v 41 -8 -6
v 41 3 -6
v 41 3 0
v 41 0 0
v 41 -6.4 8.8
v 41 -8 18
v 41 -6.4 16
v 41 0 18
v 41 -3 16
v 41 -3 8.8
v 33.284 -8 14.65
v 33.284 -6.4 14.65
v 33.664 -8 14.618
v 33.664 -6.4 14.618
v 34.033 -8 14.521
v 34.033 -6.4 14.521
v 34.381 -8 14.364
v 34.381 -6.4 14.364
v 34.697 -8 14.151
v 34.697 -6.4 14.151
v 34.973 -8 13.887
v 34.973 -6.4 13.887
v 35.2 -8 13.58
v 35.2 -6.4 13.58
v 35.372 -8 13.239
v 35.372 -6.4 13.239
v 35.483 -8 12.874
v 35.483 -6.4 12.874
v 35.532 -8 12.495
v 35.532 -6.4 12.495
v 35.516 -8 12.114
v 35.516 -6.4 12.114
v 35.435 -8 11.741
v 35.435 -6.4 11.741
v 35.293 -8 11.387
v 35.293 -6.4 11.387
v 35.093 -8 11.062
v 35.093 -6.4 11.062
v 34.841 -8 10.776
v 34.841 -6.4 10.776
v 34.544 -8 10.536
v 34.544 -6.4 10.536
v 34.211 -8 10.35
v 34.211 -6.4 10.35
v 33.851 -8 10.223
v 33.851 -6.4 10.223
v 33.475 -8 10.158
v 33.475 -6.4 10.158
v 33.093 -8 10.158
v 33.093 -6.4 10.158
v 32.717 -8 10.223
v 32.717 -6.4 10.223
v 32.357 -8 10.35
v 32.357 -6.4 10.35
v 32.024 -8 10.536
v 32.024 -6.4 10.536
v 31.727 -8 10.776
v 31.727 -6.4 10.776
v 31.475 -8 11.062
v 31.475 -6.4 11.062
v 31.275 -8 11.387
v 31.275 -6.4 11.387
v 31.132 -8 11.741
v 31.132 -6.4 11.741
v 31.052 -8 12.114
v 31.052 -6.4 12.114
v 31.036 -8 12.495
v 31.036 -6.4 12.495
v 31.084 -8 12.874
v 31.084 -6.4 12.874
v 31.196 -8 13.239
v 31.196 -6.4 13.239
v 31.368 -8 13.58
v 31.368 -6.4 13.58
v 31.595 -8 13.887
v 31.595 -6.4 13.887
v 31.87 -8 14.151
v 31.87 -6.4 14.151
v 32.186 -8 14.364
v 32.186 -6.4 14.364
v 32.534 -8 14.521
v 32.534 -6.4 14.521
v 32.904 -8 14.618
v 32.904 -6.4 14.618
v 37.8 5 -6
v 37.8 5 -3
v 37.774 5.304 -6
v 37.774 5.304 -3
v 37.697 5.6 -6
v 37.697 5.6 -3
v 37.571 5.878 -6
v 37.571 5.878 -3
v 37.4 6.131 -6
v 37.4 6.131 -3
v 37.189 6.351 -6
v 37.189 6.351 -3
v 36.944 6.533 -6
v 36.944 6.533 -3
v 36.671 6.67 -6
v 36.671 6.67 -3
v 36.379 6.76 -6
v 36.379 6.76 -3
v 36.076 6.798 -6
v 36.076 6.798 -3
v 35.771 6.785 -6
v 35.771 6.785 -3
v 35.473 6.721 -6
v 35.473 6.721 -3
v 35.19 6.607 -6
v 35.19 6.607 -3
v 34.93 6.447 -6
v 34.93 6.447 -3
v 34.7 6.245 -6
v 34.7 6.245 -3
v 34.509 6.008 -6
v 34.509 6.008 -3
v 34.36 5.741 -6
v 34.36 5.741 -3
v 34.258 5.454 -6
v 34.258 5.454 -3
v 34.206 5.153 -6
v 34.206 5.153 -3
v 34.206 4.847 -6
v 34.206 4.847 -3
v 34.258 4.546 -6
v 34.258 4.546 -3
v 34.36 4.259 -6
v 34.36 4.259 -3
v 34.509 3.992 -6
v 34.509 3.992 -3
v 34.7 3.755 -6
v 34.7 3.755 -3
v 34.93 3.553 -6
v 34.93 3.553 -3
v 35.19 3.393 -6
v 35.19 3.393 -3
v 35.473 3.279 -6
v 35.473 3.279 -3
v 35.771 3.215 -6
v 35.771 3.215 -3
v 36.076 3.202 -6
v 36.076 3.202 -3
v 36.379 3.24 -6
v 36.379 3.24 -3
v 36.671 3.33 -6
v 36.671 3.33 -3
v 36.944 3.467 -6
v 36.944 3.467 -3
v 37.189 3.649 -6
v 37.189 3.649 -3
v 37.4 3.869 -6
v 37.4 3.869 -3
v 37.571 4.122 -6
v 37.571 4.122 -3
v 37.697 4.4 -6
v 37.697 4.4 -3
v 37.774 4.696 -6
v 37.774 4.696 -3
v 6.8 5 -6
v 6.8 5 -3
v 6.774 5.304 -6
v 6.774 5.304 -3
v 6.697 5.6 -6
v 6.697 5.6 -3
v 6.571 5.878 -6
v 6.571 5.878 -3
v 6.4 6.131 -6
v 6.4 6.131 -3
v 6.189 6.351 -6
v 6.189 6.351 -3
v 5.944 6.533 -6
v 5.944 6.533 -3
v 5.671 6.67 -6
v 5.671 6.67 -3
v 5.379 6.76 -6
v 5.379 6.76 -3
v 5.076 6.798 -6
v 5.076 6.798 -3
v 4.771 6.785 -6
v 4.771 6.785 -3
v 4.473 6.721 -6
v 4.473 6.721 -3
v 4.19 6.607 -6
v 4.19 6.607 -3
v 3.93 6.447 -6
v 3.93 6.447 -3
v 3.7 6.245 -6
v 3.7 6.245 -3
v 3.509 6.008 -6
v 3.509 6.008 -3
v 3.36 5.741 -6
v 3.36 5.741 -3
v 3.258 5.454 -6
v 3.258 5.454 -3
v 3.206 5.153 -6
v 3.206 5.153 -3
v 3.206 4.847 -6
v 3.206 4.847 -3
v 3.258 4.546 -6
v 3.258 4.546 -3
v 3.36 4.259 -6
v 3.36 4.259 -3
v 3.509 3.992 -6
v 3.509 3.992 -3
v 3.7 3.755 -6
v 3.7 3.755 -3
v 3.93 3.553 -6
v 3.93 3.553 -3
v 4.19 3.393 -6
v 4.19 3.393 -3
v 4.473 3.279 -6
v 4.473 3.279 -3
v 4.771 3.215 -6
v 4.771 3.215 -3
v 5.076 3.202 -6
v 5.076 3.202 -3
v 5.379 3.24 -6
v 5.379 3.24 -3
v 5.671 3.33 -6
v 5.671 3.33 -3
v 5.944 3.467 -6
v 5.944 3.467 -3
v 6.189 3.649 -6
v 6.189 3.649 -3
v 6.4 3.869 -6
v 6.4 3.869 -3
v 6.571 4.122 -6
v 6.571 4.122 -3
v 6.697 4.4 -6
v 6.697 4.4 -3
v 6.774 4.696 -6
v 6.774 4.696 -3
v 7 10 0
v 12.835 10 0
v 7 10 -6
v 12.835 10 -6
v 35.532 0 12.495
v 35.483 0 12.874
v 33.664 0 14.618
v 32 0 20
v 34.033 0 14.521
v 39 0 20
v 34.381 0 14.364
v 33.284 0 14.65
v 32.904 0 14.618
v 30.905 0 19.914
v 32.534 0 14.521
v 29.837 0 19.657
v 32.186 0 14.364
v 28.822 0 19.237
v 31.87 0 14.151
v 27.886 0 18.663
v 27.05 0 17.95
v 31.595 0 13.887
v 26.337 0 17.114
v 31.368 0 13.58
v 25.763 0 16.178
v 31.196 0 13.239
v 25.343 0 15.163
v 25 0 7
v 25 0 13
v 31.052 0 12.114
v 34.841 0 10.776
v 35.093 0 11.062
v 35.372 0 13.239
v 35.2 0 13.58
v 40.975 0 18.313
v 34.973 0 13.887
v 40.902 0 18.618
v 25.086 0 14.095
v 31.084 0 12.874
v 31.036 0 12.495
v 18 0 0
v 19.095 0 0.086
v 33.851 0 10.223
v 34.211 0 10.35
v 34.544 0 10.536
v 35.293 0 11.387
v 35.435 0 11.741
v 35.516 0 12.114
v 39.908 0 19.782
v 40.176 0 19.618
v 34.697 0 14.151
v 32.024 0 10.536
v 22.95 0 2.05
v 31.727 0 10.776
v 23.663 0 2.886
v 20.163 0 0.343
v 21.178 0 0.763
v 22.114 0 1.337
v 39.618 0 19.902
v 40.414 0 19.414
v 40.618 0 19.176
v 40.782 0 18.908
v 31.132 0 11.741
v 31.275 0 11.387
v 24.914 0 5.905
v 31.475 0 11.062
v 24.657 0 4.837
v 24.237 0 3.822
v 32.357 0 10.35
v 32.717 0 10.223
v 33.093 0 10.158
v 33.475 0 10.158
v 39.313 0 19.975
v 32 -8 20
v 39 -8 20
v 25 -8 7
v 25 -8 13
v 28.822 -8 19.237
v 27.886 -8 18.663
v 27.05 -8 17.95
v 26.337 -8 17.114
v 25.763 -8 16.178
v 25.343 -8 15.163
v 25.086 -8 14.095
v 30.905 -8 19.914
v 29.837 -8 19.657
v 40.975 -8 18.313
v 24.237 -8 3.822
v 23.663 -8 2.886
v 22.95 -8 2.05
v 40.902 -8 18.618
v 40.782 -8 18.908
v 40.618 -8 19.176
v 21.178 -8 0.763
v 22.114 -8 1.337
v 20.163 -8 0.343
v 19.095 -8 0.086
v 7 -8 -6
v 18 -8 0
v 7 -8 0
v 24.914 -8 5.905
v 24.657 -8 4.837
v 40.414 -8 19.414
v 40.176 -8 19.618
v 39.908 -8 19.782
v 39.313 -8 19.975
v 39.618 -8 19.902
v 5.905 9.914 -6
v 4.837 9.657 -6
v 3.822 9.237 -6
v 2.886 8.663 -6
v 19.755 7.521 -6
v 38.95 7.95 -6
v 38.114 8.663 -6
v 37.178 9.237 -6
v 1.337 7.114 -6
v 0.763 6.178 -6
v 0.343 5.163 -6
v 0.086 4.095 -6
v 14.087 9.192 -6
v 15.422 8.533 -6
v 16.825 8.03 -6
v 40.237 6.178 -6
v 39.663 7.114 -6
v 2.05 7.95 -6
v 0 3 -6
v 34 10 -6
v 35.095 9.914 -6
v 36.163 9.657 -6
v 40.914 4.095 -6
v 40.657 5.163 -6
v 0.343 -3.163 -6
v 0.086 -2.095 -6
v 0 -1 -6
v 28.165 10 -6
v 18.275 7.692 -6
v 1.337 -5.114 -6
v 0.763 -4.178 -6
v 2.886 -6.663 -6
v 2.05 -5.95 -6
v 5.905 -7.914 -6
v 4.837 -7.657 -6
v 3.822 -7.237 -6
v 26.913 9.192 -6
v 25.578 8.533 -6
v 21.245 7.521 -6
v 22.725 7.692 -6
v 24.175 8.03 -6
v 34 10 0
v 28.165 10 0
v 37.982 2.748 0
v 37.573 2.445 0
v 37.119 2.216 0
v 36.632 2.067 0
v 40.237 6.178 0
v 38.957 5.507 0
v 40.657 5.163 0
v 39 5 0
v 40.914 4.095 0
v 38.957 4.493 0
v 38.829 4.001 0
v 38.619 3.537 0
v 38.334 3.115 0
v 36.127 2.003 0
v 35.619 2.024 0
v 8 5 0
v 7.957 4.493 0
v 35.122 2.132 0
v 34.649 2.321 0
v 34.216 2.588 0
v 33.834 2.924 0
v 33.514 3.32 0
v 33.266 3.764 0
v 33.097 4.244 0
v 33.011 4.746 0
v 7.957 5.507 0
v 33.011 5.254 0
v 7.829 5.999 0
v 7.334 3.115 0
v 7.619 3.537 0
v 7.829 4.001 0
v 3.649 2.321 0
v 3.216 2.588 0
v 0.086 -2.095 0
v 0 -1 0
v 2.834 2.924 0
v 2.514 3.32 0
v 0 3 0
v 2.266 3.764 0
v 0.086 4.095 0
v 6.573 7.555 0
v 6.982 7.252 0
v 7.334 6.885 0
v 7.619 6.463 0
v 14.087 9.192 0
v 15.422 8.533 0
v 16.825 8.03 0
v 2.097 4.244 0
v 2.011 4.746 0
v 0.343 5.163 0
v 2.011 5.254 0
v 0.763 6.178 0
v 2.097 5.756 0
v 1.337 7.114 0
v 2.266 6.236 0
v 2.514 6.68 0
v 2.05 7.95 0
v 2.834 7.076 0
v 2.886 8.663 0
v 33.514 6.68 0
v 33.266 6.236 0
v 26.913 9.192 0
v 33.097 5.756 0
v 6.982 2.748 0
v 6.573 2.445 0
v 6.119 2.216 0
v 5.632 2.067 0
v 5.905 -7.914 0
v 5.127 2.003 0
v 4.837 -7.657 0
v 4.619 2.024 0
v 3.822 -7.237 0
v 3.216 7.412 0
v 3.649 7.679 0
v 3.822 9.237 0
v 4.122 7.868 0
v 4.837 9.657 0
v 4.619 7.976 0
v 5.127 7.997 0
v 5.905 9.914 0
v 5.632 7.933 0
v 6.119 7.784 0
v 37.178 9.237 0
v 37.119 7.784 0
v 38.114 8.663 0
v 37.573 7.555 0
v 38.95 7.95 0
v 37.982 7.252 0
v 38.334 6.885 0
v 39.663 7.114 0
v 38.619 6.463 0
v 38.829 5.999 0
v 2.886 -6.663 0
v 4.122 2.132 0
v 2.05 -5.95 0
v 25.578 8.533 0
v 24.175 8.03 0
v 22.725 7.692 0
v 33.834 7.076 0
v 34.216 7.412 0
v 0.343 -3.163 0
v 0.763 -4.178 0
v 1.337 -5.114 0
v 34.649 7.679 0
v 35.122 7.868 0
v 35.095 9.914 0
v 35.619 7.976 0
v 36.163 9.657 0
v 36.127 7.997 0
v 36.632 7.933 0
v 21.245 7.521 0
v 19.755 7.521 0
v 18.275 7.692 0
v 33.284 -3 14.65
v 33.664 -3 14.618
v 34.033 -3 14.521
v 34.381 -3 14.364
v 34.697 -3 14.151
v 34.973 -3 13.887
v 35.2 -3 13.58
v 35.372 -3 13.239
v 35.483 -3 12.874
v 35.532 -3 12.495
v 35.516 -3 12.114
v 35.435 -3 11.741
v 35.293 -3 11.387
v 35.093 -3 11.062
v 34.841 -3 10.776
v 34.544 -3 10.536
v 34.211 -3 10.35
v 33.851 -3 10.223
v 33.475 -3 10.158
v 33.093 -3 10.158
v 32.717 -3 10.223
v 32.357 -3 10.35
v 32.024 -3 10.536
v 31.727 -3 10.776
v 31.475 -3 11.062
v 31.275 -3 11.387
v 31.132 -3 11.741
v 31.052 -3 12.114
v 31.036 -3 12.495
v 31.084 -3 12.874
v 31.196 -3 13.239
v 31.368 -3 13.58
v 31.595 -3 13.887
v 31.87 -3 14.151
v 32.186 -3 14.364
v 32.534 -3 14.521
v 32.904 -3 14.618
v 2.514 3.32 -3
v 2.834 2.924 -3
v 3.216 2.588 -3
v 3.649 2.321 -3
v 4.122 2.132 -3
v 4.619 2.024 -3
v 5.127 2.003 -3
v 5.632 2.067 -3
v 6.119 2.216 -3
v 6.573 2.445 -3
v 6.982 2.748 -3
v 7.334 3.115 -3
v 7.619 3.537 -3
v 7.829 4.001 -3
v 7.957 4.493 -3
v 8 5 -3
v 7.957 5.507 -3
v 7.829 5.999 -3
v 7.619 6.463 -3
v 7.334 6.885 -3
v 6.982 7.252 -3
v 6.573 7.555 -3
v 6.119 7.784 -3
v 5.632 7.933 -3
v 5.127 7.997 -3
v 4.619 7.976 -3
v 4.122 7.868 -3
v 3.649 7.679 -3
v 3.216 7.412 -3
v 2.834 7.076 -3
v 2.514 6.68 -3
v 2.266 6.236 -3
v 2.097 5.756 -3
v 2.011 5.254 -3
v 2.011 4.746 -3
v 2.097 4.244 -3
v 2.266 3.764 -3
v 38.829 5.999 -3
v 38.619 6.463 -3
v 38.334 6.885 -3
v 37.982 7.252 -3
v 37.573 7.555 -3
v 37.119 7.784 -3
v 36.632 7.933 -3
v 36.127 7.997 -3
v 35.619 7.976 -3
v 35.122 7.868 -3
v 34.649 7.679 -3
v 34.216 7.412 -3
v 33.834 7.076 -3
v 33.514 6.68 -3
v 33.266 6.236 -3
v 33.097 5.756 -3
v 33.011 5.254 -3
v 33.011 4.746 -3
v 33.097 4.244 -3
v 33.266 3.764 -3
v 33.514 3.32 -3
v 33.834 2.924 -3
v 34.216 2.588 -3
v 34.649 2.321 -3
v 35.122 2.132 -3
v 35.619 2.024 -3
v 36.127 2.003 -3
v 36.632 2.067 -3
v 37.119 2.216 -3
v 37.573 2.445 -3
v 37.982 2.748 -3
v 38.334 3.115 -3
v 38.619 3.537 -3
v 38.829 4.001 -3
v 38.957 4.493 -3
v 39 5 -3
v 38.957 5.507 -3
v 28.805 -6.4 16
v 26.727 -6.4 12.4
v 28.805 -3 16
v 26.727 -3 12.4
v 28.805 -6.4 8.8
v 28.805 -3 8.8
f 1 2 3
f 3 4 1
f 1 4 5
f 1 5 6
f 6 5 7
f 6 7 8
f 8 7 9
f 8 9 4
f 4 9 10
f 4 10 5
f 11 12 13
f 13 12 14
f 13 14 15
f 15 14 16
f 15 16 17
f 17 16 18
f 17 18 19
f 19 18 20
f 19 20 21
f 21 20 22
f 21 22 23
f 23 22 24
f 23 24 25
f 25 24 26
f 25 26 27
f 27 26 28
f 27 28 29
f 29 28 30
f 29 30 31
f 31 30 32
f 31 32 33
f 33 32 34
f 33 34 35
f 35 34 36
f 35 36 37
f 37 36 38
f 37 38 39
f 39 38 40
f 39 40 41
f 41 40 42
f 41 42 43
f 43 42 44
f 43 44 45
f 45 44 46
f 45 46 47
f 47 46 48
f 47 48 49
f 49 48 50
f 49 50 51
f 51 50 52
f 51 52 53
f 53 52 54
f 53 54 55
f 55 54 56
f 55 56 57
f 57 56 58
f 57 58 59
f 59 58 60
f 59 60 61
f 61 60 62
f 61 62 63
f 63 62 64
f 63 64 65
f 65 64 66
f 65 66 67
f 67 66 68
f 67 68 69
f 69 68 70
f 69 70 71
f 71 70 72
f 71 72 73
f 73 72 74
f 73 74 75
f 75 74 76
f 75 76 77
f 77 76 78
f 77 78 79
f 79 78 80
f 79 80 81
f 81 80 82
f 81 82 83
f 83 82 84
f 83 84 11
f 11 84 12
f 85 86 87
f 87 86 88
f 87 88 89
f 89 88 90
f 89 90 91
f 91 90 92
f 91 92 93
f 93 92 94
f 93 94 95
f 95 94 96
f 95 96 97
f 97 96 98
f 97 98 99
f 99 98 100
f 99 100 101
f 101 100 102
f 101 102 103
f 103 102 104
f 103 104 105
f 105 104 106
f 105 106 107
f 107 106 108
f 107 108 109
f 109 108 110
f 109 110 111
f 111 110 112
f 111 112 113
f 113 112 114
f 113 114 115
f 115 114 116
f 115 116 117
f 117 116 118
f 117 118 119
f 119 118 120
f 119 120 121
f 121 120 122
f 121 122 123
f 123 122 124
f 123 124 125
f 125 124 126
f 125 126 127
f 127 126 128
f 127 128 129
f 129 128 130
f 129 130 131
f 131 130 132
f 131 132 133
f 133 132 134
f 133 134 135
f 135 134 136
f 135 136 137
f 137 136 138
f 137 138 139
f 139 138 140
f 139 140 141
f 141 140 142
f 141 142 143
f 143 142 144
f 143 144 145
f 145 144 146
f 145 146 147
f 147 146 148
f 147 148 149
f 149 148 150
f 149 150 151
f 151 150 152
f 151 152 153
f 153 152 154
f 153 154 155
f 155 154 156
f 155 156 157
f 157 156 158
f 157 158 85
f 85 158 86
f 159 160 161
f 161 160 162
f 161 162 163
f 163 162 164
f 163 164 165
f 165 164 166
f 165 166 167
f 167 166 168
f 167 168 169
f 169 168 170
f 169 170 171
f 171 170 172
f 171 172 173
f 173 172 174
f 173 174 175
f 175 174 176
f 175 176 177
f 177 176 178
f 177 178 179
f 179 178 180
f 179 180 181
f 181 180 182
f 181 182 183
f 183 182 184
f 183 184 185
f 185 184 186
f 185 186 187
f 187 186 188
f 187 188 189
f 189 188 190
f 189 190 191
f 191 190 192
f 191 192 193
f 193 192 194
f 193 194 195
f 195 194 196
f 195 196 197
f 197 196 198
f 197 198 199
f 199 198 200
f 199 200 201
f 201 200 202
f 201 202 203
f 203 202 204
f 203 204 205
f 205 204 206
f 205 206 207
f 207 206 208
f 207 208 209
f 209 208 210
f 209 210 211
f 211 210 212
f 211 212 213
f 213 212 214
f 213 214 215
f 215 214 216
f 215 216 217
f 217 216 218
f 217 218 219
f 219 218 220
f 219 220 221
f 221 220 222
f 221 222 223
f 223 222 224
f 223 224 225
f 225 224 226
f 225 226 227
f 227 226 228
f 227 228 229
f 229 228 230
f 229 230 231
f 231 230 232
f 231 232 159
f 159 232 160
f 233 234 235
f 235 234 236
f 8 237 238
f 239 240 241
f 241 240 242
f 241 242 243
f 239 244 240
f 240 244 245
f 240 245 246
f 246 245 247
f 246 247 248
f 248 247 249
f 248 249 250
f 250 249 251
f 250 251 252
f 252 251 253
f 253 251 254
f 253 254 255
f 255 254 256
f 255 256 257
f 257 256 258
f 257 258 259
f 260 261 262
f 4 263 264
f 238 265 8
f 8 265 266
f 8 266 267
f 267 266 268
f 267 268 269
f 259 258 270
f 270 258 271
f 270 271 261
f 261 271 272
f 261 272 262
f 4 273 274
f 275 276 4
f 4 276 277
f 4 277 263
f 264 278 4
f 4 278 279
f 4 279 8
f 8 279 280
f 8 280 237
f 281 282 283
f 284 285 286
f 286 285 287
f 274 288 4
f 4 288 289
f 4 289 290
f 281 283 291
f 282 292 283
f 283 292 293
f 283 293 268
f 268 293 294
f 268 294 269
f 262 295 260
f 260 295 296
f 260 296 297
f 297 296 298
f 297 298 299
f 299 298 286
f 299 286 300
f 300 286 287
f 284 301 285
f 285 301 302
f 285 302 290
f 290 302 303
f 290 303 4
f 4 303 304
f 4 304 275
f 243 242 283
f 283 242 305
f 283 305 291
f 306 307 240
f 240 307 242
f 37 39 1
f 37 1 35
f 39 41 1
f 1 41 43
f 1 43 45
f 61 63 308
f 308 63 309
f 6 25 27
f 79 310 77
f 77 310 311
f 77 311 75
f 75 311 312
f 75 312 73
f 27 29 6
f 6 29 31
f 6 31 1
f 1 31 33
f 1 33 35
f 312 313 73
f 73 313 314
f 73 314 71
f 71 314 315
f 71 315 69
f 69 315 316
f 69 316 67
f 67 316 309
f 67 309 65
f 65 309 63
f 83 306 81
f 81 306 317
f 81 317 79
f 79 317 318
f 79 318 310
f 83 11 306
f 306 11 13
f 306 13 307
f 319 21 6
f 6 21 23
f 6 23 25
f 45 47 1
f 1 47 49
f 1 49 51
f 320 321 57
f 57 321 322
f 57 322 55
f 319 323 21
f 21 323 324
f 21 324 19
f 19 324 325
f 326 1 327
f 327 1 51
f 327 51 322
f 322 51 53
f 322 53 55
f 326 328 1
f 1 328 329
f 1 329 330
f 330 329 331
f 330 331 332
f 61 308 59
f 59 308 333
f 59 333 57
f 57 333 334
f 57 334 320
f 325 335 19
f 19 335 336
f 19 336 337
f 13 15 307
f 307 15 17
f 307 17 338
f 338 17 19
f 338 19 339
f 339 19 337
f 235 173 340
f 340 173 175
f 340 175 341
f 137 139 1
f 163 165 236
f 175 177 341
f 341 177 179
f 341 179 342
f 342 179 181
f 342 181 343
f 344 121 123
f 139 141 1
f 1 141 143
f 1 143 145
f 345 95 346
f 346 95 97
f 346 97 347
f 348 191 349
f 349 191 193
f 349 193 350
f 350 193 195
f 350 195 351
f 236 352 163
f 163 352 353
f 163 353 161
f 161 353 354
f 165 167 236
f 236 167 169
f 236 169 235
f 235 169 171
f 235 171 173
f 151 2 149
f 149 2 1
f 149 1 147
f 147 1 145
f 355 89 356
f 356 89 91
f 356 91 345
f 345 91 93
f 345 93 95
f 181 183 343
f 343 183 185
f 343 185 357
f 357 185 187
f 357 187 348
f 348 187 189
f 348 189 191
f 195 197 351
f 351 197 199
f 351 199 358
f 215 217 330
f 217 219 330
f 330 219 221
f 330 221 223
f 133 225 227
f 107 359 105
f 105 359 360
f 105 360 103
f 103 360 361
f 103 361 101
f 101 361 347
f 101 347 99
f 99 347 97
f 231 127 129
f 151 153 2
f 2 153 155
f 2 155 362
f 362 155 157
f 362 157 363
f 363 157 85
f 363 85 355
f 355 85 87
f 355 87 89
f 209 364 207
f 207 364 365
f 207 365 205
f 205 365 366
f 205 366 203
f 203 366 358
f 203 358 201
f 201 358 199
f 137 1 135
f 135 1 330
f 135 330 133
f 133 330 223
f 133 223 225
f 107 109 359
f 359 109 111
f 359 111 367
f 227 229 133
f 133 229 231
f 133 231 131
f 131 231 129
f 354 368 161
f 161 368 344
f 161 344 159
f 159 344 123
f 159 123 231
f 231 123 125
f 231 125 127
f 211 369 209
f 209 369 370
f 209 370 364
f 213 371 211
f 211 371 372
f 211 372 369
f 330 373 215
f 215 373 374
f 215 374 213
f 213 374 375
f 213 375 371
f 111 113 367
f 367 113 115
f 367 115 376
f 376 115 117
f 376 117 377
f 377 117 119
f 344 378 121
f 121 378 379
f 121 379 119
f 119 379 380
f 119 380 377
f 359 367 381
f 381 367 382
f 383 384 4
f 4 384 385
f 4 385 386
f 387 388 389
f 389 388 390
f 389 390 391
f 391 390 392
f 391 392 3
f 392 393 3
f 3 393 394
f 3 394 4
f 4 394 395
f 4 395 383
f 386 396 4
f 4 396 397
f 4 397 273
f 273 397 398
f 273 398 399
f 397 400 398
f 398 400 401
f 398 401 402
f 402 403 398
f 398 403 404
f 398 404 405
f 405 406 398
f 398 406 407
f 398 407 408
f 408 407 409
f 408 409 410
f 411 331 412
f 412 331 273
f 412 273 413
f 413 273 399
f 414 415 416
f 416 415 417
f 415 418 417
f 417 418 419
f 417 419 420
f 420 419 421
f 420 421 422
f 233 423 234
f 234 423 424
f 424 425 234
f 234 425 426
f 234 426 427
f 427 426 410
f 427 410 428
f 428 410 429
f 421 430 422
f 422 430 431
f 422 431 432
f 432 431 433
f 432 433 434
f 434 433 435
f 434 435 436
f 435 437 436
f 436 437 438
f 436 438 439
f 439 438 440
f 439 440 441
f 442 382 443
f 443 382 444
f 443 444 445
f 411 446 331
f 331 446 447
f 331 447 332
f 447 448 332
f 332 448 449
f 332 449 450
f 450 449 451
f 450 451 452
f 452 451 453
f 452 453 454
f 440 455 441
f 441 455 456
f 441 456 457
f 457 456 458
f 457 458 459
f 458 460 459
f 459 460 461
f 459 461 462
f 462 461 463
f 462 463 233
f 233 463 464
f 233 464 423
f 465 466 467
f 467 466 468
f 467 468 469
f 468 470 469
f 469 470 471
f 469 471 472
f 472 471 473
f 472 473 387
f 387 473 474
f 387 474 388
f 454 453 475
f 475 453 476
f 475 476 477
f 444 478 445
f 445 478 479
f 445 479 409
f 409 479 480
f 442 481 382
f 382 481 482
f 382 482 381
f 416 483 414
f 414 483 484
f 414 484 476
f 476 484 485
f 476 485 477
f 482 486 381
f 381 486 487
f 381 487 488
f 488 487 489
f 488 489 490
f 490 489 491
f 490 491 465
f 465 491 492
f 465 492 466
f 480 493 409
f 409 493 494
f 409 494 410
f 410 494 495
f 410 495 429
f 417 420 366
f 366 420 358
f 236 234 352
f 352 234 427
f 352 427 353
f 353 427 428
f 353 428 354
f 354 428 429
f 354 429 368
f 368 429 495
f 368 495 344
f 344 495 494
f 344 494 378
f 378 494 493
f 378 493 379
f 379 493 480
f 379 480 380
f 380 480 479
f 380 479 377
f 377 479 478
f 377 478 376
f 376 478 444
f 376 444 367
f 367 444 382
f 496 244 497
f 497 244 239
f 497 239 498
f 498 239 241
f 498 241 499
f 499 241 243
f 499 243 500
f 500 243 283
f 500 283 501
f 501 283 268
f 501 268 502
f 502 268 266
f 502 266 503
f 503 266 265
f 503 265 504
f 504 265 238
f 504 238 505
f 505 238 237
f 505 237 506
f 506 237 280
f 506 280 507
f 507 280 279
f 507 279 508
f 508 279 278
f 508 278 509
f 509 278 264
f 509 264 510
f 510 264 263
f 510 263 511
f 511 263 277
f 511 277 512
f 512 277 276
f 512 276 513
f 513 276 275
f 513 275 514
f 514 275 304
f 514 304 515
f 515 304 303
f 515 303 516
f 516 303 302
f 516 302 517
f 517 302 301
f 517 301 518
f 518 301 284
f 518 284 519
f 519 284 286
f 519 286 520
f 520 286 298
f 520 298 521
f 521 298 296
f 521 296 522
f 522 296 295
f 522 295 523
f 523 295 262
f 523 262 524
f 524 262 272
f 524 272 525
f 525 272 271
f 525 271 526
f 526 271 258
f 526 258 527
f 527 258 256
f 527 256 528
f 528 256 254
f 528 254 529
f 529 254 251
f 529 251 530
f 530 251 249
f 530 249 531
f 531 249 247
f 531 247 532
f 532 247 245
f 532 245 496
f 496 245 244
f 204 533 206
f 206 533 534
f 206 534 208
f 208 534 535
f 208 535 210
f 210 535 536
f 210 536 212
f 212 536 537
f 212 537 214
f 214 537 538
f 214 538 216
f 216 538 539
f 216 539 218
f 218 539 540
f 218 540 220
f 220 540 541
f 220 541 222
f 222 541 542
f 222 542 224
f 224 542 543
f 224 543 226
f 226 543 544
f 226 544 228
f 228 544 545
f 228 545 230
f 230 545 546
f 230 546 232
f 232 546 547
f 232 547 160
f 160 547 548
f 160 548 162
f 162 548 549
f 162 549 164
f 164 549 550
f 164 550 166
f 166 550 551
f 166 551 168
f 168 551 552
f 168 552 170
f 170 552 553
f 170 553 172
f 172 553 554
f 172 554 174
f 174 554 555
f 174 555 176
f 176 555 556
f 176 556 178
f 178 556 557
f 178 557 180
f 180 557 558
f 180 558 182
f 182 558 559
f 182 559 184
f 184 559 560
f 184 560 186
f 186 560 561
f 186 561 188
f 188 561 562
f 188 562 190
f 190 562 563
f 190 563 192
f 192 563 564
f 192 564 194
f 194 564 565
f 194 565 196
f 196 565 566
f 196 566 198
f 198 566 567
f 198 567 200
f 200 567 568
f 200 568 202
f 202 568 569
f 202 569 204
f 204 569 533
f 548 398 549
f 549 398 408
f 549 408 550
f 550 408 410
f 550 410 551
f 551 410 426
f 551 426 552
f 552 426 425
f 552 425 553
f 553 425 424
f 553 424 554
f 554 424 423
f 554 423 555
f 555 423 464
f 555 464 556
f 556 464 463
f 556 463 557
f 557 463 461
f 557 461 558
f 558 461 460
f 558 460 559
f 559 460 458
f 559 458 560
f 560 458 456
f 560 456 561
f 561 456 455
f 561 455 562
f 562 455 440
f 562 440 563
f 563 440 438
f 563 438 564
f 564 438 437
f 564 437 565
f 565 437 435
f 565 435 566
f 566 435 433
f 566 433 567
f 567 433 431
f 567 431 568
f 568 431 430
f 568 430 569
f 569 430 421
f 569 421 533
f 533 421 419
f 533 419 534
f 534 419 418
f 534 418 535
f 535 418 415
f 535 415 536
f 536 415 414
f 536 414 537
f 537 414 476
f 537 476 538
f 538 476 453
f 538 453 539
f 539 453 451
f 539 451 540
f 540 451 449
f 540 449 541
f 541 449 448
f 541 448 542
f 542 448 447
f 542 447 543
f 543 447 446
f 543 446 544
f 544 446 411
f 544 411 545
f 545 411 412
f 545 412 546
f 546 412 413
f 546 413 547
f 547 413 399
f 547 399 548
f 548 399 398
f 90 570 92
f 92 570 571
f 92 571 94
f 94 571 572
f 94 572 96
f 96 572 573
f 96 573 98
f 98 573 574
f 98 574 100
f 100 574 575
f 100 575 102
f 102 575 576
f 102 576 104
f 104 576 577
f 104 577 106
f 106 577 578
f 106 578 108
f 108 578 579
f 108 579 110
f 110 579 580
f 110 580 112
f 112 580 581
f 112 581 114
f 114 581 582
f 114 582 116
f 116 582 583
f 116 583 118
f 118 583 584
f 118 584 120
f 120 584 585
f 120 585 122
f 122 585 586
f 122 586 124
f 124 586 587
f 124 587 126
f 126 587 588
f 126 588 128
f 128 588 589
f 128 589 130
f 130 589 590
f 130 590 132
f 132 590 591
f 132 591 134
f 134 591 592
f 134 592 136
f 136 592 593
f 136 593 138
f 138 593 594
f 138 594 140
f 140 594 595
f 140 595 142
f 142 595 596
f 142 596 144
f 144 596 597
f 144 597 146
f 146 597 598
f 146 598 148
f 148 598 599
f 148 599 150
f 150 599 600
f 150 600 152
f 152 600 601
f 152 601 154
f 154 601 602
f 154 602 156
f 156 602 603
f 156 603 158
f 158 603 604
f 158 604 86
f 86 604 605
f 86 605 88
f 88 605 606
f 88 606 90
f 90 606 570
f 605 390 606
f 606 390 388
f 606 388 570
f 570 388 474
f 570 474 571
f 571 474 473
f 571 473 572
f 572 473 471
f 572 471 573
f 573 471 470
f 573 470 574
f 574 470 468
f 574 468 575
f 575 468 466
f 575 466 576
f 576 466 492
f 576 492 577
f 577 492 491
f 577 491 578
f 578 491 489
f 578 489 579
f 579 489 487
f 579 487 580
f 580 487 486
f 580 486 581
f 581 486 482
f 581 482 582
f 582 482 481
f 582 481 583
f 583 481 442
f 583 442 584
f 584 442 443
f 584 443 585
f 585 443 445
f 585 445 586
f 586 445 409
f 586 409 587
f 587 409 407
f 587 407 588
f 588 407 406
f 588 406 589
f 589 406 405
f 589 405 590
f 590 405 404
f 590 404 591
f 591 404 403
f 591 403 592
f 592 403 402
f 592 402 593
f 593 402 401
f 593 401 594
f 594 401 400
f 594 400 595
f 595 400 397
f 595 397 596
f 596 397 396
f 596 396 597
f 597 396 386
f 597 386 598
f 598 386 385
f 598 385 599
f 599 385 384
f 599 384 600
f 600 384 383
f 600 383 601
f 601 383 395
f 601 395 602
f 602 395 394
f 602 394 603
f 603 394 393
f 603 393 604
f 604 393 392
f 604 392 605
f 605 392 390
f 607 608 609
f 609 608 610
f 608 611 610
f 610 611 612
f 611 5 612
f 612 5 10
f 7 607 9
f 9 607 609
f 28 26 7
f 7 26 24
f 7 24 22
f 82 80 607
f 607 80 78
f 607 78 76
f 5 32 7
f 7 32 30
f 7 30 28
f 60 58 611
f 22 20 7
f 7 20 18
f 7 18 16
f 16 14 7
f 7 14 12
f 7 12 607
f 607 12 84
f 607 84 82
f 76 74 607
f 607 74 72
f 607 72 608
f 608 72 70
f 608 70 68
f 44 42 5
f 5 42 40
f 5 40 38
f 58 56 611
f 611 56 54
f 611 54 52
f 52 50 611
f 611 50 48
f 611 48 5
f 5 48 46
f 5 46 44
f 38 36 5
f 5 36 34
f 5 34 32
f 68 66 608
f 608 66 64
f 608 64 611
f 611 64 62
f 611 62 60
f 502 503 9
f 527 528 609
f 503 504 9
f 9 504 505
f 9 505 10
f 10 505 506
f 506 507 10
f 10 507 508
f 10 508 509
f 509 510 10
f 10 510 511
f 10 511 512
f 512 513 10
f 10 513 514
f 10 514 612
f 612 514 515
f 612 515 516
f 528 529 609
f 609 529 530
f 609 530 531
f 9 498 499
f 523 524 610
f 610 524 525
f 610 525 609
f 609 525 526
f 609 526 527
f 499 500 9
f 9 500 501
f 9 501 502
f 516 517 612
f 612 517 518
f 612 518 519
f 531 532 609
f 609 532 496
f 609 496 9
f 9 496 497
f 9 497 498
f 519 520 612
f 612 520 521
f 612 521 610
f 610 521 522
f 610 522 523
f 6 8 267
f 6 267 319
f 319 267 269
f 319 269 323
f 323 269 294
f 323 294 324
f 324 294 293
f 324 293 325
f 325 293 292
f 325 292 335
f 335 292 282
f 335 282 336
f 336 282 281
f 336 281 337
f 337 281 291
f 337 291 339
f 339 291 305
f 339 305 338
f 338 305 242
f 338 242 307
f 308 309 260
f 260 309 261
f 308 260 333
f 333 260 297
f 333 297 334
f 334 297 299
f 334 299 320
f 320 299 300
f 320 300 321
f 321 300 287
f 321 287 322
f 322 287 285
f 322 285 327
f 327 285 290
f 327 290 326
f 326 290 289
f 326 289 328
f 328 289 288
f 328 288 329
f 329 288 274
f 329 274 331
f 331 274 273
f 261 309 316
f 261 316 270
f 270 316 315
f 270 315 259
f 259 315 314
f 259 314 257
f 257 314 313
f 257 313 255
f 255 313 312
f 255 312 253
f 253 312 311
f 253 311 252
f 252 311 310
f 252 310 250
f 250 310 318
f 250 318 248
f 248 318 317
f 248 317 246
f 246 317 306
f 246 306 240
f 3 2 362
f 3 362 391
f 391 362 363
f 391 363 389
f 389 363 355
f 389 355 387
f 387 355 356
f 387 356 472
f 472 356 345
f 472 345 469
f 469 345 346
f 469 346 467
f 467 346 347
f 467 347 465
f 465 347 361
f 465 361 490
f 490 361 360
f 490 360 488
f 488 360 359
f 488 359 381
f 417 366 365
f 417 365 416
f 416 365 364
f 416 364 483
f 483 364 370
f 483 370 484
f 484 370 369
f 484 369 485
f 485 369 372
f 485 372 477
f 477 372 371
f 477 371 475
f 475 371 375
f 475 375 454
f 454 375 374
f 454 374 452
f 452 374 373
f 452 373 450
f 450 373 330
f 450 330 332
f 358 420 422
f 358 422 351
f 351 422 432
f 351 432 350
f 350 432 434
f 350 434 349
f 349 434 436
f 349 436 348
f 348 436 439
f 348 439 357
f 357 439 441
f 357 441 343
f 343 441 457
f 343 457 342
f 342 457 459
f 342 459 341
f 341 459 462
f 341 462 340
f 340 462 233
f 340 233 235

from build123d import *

# Parameters (mm, degrees)
BOSS_EXTRUDE2_DEPTH  = 41
SKETCH3_R            = 1.8
SKETCH3_R_2          = 13
CUT_EXTRUDE1_DEPTH   = 47.701177715
M4_CLEARANCE_HOLE1_D = 4.5
SKETCH6_R            = 3
CUT_EXTRUDE2_DEPTH   = 3
CUT_EXTRUDE3_START   = -6.4
SKETCH7_R            = 2.25
CUT_EXTRUDE3_DEPTH   = 3.4
FILLET3_R            = 2
SKETCH9_W            = 25
SKETCH9_H            = 20
CUT_EXTRUDE5_DEPTH   = 47.701177715
FILLET5_R            = 7


with BuildPart() as part:
    # Sketch2 → Boss-Extrude2 (new body)
    with BuildSketch(Plane(origin=(0, 0, 0), x_dir=(0, 0, -1), z_dir=(1, 0, 0))):
        Polygon((0, 0), (0, 10), (6, 10), (6, -8), (-20, -8), (-20, 0), align=None)
    extrude(amount=BOSS_EXTRUDE2_DEPTH)

    # Sketch3 → Cut-Extrude1 (cut, through all)
    with BuildSketch(Plane.XY):
        with Locations((5, 5)):
            Circle(SKETCH3_R)
        with Locations((36, 5)):
            Circle(SKETCH3_R)
        with Locations((20.5, 20.5)):
            Circle(SKETCH3_R_2)
    extrude(amount=-CUT_EXTRUDE1_DEPTH, mode=Mode.SUBTRACT)

    # M4 Clearance Hole1 (through all)
    with Locations(Plane(origin=(33.28379107, 0, 12.4), x_dir=(0, 0, 1), z_dir=(0, 1, 0))):
        with Locations((0, 0)):
            Hole(M4_CLEARANCE_HOLE1_D / 2)

    # Sketch6 → Cut-Extrude2 (cut)
    with BuildSketch(Plane.XY):
        with Locations((5, 5)):
            Circle(SKETCH6_R)
        with Locations((36, 5)):
            Circle(SKETCH6_R)
    extrude(amount=-CUT_EXTRUDE2_DEPTH, mode=Mode.SUBTRACT)

    # Sketch7 → Cut-Extrude3 (cut)
    with BuildSketch(Plane(origin=(0, 0, 0), x_dir=(1, 0, 0), z_dir=(0, 1, 0)).offset(CUT_EXTRUDE3_START)):
        with Locations(Location((33.28379107, -12.4, 0), (0, 0, 270))):
            Circle(SKETCH7_R)
        Polygon((26.726869132, -12.4), (28.805330101, -16), (32.962252039, -16), (35.040713008, -12.4), (32.962252039, -8.8), (28.805330101, -8.8), align=None)
        with BuildLine():
            Line((33.772715521, -14.596236071), (32.962252039, -16))
            Line((32.962252039, -16), (41, -16))
            Line((41, -16), (41, -8.8))
            Line((41, -8.8), (32.962252039, -8.8))
            Line((32.962252039, -8.8), (33.772715521, -10.203763929))
            ThreePointArc((33.772715521, -10.203763929), (35.039151434, -10.992445386), (35.53379107, -12.4))
            ThreePointArc((35.53379107, -12.4), (35.039151434, -13.807554614), (33.772715521, -14.596236071))
        make_face()
    extrude(amount=CUT_EXTRUDE3_DEPTH, mode=Mode.SUBTRACT)

    # Fillet3
    fillet3_edges = [part.edges().sort_by_distance(p)[0] for p in [
        (41, -4, 20),
    ]]
    fillet(fillet3_edges, radius=FILLET3_R)

    # Sketch9 → Cut-Extrude5 (cut, through all)
    with BuildSketch(Plane(origin=(0, 0, 0), x_dir=(1, 0, 0), z_dir=(0, 1, 0))):
        with Locations((12.5, -10)):
            Rectangle(SKETCH9_W, SKETCH9_H)
    extrude(amount=-CUT_EXTRUDE5_DEPTH, mode=Mode.SUBTRACT)

    # Fillet5
    fillet5_edges = [part.edges().sort_by_distance(p)[0] for p in [
        (41, 10, -3),
        (0, -8, -3),
        (0, 10, -3),
        (25, -4, 0),
        (25, -4, 20),
    ]]
    fillet(fillet5_edges, radius=FILLET5_R)


solid = part.part
